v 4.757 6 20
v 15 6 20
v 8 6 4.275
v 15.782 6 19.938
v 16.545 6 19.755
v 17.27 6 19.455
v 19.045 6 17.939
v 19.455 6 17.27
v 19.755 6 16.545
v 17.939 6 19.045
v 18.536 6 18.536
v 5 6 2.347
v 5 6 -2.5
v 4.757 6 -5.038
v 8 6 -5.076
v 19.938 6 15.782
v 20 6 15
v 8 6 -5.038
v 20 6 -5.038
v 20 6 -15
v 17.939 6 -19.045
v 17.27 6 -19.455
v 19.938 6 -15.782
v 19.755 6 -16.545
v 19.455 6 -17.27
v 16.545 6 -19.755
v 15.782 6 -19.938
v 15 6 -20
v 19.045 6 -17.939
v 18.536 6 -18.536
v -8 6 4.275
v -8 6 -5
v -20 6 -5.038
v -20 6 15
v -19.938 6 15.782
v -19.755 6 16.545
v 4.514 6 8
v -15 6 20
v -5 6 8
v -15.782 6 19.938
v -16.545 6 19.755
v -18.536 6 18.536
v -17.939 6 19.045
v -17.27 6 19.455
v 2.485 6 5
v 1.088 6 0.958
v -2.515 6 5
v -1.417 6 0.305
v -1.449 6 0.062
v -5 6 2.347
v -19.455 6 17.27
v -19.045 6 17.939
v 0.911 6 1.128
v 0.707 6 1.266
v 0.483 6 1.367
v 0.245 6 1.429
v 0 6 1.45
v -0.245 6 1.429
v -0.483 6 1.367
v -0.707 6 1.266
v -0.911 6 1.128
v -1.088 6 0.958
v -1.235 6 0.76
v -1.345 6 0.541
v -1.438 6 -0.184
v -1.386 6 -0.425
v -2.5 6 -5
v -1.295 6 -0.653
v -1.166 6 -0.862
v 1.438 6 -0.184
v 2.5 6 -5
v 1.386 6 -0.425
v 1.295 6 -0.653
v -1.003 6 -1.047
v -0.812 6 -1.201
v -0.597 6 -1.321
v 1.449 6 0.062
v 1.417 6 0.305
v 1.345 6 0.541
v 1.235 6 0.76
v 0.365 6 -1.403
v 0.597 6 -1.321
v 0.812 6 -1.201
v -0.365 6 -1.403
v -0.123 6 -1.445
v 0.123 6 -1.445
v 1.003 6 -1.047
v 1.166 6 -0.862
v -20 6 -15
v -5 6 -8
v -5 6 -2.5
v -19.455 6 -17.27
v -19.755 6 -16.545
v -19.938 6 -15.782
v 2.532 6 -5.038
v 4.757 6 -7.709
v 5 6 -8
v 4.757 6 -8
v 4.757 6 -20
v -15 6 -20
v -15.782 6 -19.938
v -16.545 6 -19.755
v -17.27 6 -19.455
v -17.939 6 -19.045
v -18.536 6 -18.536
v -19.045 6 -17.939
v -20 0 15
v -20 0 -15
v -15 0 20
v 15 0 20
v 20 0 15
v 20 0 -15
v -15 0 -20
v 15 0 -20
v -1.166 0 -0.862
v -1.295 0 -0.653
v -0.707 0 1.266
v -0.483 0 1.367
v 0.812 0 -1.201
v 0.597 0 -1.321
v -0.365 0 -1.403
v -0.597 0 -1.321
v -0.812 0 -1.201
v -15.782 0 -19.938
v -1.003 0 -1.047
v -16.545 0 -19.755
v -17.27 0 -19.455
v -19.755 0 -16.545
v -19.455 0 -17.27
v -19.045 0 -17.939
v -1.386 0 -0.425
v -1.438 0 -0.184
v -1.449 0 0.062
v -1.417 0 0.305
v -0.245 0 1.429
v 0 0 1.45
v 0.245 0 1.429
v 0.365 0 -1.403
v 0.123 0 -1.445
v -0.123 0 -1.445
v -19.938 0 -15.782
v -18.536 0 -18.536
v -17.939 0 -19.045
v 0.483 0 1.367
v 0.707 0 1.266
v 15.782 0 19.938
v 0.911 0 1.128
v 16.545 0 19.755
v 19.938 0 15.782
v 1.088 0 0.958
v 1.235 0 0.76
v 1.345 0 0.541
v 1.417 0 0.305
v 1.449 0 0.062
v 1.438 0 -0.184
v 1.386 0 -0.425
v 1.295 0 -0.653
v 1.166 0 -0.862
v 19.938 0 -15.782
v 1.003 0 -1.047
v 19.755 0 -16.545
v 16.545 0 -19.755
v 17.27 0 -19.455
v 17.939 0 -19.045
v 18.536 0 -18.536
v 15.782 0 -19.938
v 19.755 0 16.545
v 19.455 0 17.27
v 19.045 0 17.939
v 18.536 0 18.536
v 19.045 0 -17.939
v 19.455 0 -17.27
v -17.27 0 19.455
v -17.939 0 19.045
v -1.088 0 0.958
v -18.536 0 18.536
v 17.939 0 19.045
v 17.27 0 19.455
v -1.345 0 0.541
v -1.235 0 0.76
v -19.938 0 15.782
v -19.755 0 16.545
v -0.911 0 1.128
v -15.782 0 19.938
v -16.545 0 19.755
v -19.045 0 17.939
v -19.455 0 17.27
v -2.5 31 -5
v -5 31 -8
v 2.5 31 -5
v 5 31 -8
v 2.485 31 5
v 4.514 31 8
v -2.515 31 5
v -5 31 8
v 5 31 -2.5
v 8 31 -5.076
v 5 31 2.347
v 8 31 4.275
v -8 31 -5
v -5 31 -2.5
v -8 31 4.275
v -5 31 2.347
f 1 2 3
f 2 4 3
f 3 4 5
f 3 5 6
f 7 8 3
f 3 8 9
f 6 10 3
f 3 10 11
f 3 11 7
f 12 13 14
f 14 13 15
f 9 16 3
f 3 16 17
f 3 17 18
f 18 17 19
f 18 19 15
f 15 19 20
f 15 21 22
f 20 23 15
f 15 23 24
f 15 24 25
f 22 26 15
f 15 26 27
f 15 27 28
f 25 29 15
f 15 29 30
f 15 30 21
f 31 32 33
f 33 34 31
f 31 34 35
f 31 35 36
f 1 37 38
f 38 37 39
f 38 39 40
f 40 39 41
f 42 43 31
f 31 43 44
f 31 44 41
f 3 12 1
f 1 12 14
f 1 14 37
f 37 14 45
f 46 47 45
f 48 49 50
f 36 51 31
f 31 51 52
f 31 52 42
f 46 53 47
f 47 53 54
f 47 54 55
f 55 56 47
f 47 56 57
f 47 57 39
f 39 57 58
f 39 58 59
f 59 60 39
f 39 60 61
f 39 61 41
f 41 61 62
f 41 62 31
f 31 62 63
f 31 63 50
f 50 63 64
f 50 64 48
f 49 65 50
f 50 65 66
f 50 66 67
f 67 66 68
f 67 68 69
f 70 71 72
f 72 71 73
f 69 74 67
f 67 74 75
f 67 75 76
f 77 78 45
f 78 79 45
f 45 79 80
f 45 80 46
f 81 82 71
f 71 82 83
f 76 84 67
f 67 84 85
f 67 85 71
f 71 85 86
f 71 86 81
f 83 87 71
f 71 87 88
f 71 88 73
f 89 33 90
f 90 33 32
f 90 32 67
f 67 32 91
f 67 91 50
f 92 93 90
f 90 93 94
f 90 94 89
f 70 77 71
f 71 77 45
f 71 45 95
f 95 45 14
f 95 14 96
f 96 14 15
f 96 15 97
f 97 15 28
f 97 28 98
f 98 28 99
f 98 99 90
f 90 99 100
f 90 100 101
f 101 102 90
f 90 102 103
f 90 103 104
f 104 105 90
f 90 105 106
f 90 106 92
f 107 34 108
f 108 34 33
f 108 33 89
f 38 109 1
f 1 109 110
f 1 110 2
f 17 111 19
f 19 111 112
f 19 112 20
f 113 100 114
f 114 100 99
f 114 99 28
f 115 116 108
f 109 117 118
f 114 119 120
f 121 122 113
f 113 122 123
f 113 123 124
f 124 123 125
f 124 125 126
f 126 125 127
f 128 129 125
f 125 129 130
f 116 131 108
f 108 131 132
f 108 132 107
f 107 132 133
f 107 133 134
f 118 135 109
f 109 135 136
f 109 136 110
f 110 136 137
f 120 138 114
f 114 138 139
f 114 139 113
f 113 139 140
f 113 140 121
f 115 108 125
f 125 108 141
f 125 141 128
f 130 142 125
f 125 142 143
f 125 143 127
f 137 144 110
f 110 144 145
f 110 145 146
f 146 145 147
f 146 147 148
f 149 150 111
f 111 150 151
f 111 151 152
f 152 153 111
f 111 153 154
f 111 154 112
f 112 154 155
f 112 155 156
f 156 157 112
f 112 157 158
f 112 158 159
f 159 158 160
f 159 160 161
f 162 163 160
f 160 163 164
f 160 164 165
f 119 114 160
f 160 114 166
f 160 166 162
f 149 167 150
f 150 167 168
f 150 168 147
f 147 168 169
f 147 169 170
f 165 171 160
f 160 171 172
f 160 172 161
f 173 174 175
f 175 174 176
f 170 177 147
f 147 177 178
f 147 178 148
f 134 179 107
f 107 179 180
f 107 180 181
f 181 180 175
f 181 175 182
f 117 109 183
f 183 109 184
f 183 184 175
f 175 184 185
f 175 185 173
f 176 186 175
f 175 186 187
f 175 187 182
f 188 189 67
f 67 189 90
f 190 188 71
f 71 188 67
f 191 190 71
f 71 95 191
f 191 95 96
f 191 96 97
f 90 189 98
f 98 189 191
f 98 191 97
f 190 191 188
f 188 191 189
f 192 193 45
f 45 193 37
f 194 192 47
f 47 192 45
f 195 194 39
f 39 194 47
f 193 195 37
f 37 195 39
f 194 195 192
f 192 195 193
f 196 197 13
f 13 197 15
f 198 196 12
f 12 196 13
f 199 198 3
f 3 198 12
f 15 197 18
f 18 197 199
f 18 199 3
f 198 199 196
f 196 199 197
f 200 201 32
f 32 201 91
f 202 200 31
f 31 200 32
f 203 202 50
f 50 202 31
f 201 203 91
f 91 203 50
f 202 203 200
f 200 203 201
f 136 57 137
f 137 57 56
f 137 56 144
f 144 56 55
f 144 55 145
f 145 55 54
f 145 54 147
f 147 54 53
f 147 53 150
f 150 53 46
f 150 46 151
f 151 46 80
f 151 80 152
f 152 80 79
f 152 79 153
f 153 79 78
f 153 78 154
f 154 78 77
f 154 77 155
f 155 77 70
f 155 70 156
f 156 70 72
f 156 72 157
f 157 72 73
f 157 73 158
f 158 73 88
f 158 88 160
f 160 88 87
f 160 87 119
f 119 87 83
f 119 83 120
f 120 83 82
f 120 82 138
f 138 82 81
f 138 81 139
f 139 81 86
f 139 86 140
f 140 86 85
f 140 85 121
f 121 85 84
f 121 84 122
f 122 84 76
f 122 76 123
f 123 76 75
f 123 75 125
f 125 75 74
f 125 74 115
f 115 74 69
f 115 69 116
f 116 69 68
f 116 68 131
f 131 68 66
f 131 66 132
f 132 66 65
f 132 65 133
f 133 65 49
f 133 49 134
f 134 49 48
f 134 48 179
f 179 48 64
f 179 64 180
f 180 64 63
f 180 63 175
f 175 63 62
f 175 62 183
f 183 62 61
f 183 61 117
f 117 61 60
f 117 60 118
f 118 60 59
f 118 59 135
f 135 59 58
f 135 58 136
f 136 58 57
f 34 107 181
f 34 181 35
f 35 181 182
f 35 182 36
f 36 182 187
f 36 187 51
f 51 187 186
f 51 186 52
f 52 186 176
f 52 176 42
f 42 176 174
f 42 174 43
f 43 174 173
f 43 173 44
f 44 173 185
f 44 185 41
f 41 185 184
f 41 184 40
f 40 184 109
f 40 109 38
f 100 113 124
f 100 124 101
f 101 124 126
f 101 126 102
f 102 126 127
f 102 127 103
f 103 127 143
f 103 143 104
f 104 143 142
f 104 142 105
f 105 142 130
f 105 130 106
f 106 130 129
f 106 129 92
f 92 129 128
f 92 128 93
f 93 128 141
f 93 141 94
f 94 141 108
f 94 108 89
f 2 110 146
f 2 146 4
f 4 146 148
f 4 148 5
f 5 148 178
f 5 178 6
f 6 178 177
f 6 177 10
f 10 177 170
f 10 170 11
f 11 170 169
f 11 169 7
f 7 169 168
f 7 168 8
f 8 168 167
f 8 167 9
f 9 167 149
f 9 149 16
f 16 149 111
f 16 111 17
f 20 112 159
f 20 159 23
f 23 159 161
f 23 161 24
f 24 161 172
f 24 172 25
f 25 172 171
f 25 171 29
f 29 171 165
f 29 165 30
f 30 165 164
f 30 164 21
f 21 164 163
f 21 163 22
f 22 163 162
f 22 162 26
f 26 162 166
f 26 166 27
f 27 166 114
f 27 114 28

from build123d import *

# Parameters (mm, degrees)
SKETCH1_W           = 40
SKETCH1_H           = 40
BOSS_EXTRUDE1_DEPTH = 6
BOSS_EXTRUDE2_DEPTH = 25
BOSS_EXTRUDE3_DEPTH = 25
BOSS_EXTRUDE4_DEPTH = 25
CUT_EXTRUDE1_REACH  = 8
SKETCH6_R           = 1.45
FILLET1_R           = 5


with BuildPart() as part:
    # Sketch1 → Boss-Extrude1 (new body)
    with BuildSketch(Plane(origin=(0, 0, 0), x_dir=(1, 0, 0), z_dir=(0, 1, 0))):
        Rectangle(SKETCH1_W, SKETCH1_H)
    extrude(amount=BOSS_EXTRUDE1_DEPTH)

    # Sketch2 → Boss-Extrude2 (add)
    with BuildSketch(Plane(origin=(0, 6, 0), x_dir=(1, 0, 0), z_dir=(0, 1, 0))):
        Polygon((5, 8), (-5, 8), (-2.5, 5), (2.5, 5), align=None)
    extrude(amount=BOSS_EXTRUDE2_DEPTH)

    # Sketch4 → Boss-Extrude3 (add)
    with BuildSketch(Plane(origin=(0, 6, 0), x_dir=(1, 0, 0), z_dir=(0, 1, 0))):
        Polygon((-5, -8), (4.514189834, -8), (2.484709767, -5), (-2.515290233, -5), align=None)
    extrude(amount=BOSS_EXTRUDE3_DEPTH)

    # Sketch5 → Boss-Extrude4 (add)
    with BuildSketch(Plane(origin=(0, 6, 0), x_dir=(1, 0, 0), z_dir=(0, 1, 0))):
        Polygon((8, -4.275229645), (8, 5.076407548), (5, 2.5), (5, -2.347184903), align=None)
        Polygon((-8, -4.275229645), (-8, 5), (-5, 2.5), (-5, -2.347184903), align=None)
    extrude(amount=BOSS_EXTRUDE4_DEPTH)

    # Sketch6 → Cut-Extrude1 (cut, up to next)
    with BuildSketch(Plane(origin=(0, 6, 0), x_dir=(1, 0, 0), z_dir=(0, 1, 0)), mode=Mode.PRIVATE) as cut_extrude1_sk1:
        Circle(SKETCH6_R)
    cut_extrude1_tool1 = extrude(cut_extrude1_sk1.sketch, amount=-CUT_EXTRUDE1_REACH, mode=Mode.PRIVATE) & part.part
    add(cut_extrude1_tool1.solids().sort_by_distance((0, 6, 0))[0], mode=Mode.SUBTRACT)

    # Fillet1
    fillet1_edges = [part.edges().sort_by_distance(p)[0] for p in [
        (-20, 3, -20),
        (20, 3, -20),
        (20, 3, 20),
        (-20, 3, 20),
    ]]
    fillet(fillet1_edges, radius=FILLET1_R)


solid = part.part
